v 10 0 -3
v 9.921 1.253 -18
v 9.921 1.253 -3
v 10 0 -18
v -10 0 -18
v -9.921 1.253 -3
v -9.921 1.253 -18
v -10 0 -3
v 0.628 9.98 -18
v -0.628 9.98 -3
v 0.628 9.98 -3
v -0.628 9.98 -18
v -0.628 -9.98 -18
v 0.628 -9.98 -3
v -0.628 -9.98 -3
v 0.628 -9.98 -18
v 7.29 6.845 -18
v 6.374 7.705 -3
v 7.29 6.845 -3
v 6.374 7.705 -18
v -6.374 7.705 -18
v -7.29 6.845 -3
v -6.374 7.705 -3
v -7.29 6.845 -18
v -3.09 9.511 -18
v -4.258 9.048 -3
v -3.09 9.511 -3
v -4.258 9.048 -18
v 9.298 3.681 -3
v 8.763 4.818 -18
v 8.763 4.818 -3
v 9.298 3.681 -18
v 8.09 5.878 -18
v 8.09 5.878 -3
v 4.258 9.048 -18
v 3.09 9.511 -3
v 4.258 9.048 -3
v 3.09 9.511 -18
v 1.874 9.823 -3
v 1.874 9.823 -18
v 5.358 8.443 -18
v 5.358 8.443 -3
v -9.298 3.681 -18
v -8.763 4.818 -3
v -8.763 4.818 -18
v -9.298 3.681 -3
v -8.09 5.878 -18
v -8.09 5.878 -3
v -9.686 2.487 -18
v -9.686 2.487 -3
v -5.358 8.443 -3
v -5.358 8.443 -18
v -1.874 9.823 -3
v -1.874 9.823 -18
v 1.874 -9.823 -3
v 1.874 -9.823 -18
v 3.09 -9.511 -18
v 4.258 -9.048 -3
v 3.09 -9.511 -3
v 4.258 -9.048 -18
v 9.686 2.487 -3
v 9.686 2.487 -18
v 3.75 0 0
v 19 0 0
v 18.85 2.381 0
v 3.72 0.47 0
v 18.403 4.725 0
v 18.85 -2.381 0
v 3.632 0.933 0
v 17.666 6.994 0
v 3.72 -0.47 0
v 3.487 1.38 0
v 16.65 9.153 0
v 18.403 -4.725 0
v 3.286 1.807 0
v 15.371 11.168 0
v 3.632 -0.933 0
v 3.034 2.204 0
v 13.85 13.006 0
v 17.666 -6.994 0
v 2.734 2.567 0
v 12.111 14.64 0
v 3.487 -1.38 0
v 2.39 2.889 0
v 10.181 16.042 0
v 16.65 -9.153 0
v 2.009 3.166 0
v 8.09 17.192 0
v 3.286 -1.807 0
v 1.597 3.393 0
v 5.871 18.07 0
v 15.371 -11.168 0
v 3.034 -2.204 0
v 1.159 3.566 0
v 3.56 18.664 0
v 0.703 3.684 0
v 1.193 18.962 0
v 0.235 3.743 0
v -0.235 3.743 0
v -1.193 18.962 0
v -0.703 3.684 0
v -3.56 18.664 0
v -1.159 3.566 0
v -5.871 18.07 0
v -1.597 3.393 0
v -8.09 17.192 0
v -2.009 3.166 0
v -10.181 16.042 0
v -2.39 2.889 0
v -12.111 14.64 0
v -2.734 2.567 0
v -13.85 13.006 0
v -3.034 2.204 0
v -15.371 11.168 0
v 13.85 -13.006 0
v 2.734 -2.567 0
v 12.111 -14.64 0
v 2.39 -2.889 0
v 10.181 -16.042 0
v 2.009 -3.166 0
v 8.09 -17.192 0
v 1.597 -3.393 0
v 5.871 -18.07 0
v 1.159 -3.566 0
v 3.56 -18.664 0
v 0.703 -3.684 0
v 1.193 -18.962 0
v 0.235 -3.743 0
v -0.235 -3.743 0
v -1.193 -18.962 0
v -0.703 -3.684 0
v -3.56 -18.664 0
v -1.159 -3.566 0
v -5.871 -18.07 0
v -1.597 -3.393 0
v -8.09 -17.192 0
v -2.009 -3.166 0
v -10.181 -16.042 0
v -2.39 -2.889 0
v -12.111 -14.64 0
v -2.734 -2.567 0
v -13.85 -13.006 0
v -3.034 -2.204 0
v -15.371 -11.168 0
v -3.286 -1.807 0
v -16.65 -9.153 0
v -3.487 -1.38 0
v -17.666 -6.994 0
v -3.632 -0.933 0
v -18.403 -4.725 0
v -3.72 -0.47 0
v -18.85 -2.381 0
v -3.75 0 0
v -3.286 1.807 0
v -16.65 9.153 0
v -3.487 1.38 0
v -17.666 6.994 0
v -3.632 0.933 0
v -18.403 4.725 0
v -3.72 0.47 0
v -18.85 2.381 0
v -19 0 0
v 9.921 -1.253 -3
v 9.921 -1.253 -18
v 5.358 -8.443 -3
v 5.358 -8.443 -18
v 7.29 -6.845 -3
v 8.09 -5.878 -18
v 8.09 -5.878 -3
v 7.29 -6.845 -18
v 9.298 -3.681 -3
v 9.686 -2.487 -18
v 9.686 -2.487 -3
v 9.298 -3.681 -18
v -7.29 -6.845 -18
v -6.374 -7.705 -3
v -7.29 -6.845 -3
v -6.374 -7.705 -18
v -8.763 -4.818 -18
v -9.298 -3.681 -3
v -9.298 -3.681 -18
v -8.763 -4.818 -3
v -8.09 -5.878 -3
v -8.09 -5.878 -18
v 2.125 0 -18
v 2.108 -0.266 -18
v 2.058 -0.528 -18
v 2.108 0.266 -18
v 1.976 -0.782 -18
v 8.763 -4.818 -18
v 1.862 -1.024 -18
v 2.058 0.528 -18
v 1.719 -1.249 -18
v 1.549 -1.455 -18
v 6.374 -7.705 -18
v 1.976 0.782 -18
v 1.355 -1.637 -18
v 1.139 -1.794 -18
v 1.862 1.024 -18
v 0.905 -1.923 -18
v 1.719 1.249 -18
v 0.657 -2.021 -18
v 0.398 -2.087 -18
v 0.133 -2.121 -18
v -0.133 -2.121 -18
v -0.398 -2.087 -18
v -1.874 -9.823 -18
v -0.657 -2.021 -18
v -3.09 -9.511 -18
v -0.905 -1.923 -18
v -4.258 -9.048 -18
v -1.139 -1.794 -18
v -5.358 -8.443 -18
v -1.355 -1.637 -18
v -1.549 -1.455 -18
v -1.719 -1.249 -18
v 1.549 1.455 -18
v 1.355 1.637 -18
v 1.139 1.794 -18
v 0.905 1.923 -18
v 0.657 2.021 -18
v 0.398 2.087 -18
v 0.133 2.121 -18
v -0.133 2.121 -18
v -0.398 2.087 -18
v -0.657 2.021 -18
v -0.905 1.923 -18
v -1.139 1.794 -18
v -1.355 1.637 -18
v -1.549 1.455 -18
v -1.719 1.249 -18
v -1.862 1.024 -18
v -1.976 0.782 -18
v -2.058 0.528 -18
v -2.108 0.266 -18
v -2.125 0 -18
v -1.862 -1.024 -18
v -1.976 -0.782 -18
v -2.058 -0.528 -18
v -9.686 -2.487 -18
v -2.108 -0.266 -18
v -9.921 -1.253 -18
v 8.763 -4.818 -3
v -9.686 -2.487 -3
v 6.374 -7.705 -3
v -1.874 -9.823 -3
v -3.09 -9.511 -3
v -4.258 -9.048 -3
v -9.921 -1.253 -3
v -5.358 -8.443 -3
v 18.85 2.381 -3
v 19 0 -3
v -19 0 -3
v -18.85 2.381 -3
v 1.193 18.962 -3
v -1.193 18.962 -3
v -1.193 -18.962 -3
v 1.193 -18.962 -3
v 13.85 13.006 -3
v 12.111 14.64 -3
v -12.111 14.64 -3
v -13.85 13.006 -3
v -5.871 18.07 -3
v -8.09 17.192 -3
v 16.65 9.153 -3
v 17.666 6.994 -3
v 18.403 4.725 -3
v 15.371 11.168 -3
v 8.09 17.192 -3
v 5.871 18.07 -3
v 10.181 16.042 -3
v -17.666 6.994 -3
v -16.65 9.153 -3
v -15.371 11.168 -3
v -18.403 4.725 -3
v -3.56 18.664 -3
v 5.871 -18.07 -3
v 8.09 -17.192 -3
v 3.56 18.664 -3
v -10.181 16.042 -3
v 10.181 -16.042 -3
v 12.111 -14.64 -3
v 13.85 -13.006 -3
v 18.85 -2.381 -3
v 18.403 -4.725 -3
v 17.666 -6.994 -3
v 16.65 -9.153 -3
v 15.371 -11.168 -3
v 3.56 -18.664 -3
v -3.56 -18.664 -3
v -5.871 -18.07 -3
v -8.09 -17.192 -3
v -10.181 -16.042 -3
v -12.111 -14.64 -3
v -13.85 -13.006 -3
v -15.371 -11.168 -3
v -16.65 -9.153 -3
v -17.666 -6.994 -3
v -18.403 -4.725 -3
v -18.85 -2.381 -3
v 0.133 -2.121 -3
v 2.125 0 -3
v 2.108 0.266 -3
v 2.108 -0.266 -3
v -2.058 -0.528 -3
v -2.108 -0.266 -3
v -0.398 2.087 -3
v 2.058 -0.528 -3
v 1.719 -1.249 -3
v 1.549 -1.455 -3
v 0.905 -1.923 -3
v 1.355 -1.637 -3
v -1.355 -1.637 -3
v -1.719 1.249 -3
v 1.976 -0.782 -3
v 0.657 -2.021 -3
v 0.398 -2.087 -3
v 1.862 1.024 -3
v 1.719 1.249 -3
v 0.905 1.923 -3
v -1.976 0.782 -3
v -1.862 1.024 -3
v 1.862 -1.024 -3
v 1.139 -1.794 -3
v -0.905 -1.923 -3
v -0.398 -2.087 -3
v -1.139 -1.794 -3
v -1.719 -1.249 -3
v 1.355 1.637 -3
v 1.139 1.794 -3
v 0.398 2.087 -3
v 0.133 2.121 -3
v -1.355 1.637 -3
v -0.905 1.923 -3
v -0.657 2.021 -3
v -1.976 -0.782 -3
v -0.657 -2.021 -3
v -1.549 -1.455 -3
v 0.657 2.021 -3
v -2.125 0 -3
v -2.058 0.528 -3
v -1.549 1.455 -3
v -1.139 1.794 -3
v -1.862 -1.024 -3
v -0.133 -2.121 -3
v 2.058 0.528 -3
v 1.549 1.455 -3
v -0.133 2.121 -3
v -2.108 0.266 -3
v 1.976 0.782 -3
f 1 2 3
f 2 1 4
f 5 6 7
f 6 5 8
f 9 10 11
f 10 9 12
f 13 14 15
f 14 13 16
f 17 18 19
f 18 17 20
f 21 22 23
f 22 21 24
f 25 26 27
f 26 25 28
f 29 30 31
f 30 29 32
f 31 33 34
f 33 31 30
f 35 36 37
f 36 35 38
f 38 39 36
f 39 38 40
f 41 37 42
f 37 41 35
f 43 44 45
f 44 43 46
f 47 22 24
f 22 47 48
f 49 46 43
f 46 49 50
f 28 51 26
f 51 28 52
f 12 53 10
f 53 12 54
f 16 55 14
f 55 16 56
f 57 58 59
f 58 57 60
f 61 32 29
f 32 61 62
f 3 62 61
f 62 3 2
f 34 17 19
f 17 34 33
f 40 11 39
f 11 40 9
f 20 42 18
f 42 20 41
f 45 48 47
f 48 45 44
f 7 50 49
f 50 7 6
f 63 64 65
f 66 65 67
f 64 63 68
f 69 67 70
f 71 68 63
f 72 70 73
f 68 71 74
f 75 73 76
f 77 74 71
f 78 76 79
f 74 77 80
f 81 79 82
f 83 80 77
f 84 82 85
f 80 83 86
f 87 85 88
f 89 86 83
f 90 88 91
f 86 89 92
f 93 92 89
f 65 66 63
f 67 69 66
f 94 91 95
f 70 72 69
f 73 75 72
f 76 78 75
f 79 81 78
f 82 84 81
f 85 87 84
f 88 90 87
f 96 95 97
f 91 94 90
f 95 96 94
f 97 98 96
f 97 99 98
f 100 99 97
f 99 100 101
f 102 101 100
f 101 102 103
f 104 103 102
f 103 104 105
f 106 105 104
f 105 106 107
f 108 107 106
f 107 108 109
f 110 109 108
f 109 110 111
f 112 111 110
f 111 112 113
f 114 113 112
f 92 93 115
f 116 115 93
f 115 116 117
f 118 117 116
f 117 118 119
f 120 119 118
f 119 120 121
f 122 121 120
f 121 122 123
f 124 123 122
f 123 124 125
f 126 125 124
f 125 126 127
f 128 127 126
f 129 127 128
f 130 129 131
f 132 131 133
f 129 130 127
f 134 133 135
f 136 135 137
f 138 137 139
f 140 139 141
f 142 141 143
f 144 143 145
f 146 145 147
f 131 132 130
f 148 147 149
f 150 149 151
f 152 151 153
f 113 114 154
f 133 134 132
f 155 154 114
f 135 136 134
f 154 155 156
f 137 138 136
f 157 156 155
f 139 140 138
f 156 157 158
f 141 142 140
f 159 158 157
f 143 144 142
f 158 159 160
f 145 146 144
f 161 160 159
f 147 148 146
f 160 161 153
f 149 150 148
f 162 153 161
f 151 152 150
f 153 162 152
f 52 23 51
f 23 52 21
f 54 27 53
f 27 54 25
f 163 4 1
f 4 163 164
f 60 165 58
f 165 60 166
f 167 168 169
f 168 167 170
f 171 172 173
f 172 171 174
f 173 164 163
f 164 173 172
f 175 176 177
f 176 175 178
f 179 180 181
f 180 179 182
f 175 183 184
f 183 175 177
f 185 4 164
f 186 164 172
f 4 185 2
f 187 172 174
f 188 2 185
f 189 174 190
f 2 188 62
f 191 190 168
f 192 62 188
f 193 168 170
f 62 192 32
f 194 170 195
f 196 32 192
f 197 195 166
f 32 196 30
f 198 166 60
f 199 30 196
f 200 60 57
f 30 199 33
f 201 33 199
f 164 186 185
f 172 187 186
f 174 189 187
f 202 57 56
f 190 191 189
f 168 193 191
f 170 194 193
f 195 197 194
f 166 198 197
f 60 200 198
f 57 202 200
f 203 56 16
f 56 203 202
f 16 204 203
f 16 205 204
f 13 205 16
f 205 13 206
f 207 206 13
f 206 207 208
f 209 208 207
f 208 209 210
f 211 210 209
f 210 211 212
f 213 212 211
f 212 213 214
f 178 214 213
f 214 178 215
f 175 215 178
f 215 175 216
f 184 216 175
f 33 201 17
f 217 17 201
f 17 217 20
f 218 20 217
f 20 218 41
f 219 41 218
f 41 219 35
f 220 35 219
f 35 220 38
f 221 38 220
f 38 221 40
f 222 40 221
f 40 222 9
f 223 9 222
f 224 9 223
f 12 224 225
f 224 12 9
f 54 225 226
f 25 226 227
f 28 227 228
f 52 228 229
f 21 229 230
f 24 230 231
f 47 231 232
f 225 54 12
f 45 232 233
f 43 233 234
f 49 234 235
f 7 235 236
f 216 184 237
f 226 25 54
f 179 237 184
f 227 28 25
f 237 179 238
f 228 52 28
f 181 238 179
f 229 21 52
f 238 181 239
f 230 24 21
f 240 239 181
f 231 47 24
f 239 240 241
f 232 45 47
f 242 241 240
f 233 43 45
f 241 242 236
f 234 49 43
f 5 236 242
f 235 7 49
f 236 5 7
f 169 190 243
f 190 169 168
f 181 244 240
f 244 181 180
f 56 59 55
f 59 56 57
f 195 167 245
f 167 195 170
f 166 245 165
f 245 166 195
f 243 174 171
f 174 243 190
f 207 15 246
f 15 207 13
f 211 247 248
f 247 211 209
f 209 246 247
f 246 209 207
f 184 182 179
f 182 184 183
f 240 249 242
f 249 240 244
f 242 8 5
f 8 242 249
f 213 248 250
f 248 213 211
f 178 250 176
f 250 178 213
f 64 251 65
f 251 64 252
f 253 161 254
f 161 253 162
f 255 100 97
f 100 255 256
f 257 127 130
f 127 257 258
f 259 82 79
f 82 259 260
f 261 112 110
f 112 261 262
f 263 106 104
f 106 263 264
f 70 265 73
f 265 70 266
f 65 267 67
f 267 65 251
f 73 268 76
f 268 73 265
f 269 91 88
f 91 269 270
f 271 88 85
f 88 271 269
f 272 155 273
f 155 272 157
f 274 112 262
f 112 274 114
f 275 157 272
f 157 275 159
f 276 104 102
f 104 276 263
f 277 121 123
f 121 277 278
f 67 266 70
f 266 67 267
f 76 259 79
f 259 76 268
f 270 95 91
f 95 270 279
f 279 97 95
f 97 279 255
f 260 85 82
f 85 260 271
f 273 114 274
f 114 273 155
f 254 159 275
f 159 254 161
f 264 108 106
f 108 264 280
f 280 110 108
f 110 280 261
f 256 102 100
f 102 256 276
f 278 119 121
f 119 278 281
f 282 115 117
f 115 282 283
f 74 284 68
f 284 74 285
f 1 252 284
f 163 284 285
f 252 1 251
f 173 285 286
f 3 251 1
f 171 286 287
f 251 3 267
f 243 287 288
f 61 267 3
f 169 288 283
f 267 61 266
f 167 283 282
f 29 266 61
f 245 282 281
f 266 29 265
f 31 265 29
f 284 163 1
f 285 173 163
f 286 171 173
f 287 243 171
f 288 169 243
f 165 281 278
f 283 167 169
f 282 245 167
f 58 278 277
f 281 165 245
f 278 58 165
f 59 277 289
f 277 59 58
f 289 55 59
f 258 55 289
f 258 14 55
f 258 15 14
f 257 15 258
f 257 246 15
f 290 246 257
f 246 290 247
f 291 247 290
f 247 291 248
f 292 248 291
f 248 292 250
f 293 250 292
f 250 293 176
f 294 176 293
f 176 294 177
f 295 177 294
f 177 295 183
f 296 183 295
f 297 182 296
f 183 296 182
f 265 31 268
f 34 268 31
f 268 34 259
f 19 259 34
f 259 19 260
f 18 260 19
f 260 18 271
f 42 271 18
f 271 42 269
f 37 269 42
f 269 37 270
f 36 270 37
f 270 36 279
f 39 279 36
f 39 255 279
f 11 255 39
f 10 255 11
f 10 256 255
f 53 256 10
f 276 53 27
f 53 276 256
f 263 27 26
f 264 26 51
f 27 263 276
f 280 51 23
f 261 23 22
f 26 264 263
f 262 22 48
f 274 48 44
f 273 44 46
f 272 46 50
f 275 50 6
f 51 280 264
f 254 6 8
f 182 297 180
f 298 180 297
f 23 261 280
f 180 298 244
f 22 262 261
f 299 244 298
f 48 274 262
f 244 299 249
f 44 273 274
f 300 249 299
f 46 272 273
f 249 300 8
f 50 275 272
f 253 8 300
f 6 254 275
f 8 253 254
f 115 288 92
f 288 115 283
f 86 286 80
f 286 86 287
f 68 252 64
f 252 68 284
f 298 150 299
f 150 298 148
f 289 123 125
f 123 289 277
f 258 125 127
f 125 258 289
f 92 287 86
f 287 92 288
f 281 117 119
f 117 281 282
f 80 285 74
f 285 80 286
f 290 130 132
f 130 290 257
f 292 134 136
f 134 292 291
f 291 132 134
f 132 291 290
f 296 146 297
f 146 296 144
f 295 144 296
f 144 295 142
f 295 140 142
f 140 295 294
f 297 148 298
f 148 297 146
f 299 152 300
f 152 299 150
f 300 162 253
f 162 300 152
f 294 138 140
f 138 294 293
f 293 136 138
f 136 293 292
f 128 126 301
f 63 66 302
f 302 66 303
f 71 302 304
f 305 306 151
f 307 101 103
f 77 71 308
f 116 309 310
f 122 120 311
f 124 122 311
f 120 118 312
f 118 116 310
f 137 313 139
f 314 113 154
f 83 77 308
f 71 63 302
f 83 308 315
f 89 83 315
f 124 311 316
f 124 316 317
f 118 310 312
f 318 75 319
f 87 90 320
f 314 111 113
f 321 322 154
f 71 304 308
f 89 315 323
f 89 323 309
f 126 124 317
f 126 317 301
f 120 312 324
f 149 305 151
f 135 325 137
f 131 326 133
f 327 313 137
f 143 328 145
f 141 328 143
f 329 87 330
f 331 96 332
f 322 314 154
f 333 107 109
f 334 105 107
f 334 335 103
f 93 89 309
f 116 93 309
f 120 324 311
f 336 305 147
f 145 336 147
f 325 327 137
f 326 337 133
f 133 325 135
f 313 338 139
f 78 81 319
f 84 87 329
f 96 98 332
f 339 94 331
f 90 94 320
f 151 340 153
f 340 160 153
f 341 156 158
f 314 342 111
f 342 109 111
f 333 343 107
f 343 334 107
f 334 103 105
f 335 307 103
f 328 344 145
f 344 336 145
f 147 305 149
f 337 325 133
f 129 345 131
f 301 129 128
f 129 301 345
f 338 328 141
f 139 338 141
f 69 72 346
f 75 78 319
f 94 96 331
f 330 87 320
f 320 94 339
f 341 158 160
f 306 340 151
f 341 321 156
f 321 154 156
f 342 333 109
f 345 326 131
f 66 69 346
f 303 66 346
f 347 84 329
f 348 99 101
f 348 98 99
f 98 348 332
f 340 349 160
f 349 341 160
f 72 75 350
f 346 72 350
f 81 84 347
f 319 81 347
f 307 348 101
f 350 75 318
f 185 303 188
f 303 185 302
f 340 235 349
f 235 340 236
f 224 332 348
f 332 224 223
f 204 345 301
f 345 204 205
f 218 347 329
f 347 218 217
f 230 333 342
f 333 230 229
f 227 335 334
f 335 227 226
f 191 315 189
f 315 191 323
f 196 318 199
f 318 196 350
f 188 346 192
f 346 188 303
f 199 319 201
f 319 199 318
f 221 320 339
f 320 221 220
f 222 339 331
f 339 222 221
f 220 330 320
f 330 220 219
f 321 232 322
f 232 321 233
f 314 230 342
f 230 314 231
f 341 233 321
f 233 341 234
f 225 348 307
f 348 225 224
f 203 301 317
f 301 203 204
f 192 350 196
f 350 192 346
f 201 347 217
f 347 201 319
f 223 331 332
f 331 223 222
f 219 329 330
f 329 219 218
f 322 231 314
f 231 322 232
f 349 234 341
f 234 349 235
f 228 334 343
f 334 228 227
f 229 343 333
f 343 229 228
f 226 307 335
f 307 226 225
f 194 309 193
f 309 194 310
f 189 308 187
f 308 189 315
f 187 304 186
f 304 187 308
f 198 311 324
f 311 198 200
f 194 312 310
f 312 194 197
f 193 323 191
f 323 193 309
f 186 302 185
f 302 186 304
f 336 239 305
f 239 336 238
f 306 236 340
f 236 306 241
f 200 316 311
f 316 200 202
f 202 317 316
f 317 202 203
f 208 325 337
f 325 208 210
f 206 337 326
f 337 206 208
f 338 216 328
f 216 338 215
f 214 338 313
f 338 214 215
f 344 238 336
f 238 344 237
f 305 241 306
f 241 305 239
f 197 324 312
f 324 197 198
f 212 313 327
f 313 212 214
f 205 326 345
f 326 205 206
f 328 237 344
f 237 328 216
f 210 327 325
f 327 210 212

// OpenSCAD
$fn = 50;


difference() {
	union() {
		translate(v = [0, 0, -18.0000000000]) {
			cylinder(h = 18, r = 10.0000000000);
		}
		translate(v = [0, 0, -3.0000000000]) {
			cylinder(h = 3, r = 19.0000000000);
		}
	}
	union() {
		translate(v = [0, 0, 0]) {
			rotate(a = [0, 0, 0]) {
				difference() {
					union() {
						#translate(v = [0, 0, -18.0000000000]) {
							cylinder(h = 18, r = 2.0000000000);
						}
						#translate(v = [0, 0, -3]) {
							cylinder(h = 3, r = 10.0000000000, r1 = 2.1250000000, r2 = 3.7500000000);
						}
						#translate(v = [0, 0, -18.0000000000]) {
							cylinder(h = 18, r = 2.1250000000);
						}
						#translate(v = [0, 0, -18.0000000000]) {
							cylinder(h = 18, r = 2.0000000000);
						}
					}
					union();
				}
			}
		}
	}
}
